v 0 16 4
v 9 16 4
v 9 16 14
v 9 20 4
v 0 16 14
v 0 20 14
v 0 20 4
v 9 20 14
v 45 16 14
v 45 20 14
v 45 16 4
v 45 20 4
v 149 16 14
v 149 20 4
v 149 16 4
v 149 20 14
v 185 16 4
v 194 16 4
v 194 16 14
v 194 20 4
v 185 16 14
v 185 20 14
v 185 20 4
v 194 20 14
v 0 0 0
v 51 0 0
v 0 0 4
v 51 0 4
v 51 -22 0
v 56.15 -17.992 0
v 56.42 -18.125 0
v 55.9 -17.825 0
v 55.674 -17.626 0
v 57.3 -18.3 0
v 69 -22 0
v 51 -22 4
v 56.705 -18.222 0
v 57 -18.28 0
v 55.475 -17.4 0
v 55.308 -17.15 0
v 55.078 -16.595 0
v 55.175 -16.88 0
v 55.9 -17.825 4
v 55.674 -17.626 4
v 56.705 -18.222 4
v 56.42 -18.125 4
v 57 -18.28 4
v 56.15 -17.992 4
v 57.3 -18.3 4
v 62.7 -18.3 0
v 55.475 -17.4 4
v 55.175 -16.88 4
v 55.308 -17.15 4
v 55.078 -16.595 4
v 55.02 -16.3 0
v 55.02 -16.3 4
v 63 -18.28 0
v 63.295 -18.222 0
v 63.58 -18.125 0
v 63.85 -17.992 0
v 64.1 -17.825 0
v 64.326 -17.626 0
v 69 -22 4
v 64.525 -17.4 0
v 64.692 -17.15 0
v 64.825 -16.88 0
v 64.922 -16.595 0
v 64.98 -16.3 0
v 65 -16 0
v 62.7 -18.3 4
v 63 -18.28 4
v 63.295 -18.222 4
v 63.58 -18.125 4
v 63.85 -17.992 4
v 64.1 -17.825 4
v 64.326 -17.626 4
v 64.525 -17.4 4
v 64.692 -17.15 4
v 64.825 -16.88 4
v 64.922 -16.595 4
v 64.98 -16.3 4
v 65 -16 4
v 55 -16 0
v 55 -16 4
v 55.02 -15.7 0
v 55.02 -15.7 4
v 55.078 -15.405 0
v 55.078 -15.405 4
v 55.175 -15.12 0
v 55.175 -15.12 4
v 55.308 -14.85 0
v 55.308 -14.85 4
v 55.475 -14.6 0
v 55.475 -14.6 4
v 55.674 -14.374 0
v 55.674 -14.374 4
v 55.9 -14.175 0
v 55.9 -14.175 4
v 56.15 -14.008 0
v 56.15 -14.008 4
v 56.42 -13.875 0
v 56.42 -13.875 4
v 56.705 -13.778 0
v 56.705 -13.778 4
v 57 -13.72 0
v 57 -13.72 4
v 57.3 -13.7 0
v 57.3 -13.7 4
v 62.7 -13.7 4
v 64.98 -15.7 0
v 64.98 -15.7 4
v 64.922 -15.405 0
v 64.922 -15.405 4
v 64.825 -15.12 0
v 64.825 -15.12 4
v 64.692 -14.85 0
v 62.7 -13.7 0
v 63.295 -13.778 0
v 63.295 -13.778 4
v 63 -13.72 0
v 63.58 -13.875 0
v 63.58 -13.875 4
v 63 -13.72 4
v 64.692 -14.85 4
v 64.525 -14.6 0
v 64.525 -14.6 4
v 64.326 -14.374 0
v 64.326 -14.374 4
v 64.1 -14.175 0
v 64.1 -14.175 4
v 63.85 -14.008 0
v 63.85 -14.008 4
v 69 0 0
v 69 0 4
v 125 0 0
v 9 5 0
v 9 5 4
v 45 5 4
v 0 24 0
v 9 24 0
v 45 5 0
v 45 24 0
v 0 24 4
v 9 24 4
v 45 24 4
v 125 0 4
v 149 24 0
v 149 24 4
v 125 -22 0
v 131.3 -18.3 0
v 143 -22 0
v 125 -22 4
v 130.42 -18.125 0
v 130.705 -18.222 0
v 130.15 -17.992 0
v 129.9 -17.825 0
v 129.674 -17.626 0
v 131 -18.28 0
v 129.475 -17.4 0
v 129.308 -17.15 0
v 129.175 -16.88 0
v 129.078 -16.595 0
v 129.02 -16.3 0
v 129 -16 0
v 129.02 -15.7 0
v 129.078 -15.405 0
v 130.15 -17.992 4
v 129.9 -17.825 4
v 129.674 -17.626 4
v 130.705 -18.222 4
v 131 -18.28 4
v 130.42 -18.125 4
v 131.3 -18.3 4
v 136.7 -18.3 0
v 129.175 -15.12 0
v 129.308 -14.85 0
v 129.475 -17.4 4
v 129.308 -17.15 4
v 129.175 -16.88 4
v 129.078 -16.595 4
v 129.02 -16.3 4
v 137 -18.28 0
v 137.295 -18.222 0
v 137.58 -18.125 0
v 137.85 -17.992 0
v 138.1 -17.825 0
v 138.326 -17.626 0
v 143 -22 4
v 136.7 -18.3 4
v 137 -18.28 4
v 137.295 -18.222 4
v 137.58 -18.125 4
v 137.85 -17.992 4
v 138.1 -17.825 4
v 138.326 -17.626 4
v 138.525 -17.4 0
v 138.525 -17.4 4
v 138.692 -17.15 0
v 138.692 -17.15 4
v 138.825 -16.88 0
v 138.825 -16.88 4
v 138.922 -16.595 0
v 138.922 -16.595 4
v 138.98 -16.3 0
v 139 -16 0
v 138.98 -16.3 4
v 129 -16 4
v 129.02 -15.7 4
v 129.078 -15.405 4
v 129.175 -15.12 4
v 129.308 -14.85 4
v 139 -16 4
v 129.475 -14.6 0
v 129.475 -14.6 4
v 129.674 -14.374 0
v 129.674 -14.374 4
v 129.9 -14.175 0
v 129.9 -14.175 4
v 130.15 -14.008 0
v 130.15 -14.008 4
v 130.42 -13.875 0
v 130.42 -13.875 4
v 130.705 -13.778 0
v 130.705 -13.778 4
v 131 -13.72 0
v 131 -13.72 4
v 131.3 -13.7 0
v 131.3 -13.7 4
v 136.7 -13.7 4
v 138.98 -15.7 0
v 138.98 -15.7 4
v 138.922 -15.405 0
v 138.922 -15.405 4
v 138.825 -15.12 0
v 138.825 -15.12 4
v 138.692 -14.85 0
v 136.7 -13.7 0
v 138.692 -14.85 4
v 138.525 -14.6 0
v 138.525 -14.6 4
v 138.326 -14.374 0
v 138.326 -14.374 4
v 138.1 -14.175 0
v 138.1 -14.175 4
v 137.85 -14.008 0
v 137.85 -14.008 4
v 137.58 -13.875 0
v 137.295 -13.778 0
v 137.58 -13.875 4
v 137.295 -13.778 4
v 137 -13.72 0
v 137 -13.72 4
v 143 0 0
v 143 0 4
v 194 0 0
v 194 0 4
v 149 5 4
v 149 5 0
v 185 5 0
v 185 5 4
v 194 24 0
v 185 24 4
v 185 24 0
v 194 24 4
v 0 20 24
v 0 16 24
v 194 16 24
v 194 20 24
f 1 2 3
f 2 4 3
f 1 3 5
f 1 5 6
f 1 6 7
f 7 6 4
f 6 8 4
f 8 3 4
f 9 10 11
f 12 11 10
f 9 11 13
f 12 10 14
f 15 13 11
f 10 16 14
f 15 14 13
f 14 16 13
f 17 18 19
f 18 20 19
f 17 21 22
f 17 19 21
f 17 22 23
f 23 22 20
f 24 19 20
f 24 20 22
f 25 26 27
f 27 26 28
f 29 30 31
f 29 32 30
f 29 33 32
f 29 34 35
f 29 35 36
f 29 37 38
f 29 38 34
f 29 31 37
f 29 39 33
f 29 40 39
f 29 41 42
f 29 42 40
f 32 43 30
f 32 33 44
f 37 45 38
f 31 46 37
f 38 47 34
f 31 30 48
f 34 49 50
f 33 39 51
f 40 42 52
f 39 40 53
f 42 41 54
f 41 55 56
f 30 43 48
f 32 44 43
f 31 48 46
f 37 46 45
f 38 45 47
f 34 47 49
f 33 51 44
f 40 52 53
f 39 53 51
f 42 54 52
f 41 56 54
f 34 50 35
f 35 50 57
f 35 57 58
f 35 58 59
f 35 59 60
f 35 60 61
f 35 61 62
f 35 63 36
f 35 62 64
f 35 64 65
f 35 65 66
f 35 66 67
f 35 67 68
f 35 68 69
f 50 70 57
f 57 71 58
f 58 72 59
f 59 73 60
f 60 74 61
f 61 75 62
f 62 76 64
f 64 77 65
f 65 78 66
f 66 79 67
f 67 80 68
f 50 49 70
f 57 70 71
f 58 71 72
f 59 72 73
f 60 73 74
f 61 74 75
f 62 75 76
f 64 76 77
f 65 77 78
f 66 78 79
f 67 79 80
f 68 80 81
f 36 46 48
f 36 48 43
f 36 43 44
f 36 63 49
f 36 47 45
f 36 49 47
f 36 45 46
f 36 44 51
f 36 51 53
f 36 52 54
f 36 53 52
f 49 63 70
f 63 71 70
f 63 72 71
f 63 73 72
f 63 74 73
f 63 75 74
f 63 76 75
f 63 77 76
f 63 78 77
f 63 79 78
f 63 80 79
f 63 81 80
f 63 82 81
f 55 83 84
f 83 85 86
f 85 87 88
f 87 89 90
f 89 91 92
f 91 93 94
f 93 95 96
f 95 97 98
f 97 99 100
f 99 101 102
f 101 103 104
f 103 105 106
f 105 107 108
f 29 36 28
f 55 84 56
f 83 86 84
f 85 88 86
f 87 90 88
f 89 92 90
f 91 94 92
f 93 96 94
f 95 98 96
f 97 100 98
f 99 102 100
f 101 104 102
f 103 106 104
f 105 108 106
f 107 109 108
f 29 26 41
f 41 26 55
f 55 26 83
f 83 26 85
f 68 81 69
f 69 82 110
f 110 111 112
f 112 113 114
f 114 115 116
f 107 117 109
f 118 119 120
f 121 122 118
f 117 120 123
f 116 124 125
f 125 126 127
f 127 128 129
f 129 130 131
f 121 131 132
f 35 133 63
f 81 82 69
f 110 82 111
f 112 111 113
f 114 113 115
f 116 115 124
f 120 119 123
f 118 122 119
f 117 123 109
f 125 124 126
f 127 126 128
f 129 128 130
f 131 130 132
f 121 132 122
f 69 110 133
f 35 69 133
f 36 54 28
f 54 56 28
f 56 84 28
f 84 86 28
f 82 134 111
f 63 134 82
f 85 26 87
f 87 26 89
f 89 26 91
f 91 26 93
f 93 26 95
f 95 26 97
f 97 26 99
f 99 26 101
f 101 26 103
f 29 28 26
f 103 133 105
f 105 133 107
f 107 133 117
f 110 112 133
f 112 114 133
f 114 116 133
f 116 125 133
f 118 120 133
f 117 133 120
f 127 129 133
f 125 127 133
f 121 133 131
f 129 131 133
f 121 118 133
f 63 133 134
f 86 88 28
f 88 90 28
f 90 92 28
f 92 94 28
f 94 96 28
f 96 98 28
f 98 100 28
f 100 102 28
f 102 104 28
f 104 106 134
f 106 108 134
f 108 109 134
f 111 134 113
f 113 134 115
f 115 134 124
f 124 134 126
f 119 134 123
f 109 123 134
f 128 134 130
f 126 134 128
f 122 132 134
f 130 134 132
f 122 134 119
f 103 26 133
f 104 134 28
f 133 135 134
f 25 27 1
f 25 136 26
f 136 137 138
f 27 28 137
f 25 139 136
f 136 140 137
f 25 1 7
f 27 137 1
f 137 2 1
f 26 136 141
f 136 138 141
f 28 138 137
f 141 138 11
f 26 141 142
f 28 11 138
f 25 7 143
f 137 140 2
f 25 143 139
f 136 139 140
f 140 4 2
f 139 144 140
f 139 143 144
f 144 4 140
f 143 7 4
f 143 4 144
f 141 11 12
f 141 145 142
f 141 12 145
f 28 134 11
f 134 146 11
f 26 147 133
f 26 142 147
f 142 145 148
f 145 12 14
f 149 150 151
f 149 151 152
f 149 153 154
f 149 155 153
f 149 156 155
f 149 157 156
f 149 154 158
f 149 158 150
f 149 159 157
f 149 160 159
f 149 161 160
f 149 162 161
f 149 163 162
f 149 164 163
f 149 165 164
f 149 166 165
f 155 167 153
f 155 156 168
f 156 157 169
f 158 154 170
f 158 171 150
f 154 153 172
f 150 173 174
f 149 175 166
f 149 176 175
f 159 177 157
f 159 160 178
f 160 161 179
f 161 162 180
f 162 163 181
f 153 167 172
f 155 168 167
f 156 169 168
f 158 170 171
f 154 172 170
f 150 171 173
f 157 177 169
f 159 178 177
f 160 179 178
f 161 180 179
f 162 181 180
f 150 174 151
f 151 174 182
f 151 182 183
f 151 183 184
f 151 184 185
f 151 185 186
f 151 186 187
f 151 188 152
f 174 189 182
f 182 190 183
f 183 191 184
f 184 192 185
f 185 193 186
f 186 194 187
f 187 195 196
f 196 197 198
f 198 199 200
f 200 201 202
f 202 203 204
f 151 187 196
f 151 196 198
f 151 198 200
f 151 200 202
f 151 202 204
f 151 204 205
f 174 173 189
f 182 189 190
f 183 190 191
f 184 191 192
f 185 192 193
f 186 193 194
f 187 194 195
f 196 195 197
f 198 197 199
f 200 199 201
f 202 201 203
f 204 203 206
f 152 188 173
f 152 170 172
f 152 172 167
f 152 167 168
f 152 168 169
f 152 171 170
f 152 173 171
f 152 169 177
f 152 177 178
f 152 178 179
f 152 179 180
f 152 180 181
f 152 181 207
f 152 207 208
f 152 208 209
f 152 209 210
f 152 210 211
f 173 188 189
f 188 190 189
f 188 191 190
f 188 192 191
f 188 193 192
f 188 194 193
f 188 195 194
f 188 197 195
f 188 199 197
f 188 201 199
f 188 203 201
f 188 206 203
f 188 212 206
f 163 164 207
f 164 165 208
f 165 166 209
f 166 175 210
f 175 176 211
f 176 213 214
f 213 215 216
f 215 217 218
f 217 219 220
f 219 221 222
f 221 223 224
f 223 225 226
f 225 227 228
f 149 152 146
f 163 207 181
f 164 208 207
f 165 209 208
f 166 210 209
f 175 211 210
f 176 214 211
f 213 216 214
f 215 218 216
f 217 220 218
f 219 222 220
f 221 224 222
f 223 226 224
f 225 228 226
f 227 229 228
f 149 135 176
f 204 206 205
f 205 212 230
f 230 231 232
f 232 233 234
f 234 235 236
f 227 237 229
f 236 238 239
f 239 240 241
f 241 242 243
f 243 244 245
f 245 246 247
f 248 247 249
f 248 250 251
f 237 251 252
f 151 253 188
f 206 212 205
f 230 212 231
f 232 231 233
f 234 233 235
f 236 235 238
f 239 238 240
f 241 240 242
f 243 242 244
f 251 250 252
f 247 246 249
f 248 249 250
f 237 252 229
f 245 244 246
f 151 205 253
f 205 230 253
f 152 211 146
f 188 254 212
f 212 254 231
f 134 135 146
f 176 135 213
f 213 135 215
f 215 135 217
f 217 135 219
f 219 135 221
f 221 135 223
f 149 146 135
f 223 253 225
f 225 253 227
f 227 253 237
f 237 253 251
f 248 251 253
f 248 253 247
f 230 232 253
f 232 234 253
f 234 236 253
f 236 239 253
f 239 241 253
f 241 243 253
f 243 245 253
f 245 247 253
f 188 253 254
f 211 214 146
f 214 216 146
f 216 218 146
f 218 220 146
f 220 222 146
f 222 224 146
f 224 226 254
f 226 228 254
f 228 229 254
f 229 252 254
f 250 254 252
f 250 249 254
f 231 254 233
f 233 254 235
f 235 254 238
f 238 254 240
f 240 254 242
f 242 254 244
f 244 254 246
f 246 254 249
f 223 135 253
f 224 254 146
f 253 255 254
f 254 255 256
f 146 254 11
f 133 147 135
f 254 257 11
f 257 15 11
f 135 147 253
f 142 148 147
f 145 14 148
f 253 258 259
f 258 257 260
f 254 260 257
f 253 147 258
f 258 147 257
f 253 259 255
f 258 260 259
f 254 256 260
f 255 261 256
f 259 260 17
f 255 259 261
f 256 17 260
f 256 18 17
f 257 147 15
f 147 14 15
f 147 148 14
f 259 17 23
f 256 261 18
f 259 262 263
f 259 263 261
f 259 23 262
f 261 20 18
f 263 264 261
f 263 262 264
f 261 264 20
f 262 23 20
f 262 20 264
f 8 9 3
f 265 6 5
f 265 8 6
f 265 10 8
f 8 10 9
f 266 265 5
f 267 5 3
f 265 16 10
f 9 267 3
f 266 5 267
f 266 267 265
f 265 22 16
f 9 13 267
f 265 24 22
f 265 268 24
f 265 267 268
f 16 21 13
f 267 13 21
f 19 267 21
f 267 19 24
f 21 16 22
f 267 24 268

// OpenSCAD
// Front-loaded, full-width electronics-tray retainer — physical fit test.
// It bolts to the two front-middle slots in the already-printed black stand,
// clears both shelf/upright footprints, and bears on the lower 10 mm of the
// green tray below every driver PCB.

$fn = 48;

show_top_projection = false;

// Coordinates match vertical-service-stand.scad in its installed orientation.
part_x0 = 8;
part_x1 = 202;
rail_y0 = 38;
rail_y1 = 62;
flange_t = 4;

// Existing shelf/upright footprints: centres 35/175, shelf width 34. Add 1 mm
// clearance on every side so the retainer can slide in from the front.
support_cutouts = [[17, 53], [157, 193]];
cutout_y0 = 43;
cutout_y1 = 63;

// Existing centre slots in the stand are at x=68/142, y=22. The tabs accept
// M4 hardware with washer; elongated holes retain assembly tolerance.
screw_x = [68, 142];
screw_y = 22;
ear_w = 18;
ear_y0 = 16;
ear_y1 = rail_y0;
m4_slot_len = 10;
m4_slot_w = 4.6;

// Stand top is z=6. Green tray bottom is z=20. The retaining wall starts at
// the tray bottom and rises exactly 10 mm, ending at z=30 where the lowest
// legacy PCB envelope begins.
wall_y0 = 54;
wall_y1 = 58;
wall_z0 = 14;  // installed z=20 after the part rests on the 6 mm stand
wall_z1 = 24;  // installed z=30

module capsule_2d(length, width, horizontal = true) {
    hull() {
        if (horizontal) {
            translate([-(length - width) / 2, 0]) circle(d = width);
            translate([ (length - width) / 2, 0]) circle(d = width);
        } else {
            translate([0, -(length - width) / 2]) circle(d = width);
            translate([0,  (length - width) / 2]) circle(d = width);
        }
    }
}

module plan_profile() {
    difference() {
        union() {
            // Main front cross-rail.
            square([part_x1 - part_x0, rail_y1 - rail_y0]);

            // Two forward screw ears.
            for (x = screw_x)
                translate([x - part_x0 - ear_w / 2,
                           ear_y0 - rail_y0])
                    square([ear_w, ear_y1 - ear_y0]);
        }

        // Two rear openings wrap around the printed black supports, producing
        // the three-finger outline in the user's top-view sketch.
        for (r = support_cutouts)
            translate([r[0] - part_x0, cutout_y0 - rail_y0])
                square([r[1] - r[0], cutout_y1 - cutout_y0]);

        // M4 adjustment slots in the two ears.
        for (x = screw_x)
            translate([x - part_x0, screw_y - rail_y0])
                capsule_2d(m4_slot_len, m4_slot_w, true);
    }
}

module front_retainer_fit_test() {
    union() {
        // Horizontal flange that slides in from the front and bolts to the
        // stand's existing middle slots.
        linear_extrude(height = flange_t) plan_profile();

        // Three vertical webs connect the flange to the full-width wall while
        // clearing the two support blocks below it.
        for (r = [[part_x0, support_cutouts[0][0]],
                  [support_cutouts[0][1], support_cutouts[1][0]],
                  [support_cutouts[1][1], part_x1]])
            translate([r[0] - part_x0, wall_y0 - rail_y0, flange_t])
                cube([r[1] - r[0], wall_y1 - wall_y0,
                      wall_z0 - flange_t]);

        // Continuous 10 mm retaining face spreads pressure along the tray and
        // remains below the drivers and printed wiring guides.
        translate([0, wall_y0 - rail_y0, wall_z0])
            cube([part_x1 - part_x0, wall_y1 - wall_y0,
                  wall_z1 - wall_z0]);
    }
}

if (show_top_projection)
    projection(cut = false) front_retainer_fit_test();
else
    front_retainer_fit_test();
